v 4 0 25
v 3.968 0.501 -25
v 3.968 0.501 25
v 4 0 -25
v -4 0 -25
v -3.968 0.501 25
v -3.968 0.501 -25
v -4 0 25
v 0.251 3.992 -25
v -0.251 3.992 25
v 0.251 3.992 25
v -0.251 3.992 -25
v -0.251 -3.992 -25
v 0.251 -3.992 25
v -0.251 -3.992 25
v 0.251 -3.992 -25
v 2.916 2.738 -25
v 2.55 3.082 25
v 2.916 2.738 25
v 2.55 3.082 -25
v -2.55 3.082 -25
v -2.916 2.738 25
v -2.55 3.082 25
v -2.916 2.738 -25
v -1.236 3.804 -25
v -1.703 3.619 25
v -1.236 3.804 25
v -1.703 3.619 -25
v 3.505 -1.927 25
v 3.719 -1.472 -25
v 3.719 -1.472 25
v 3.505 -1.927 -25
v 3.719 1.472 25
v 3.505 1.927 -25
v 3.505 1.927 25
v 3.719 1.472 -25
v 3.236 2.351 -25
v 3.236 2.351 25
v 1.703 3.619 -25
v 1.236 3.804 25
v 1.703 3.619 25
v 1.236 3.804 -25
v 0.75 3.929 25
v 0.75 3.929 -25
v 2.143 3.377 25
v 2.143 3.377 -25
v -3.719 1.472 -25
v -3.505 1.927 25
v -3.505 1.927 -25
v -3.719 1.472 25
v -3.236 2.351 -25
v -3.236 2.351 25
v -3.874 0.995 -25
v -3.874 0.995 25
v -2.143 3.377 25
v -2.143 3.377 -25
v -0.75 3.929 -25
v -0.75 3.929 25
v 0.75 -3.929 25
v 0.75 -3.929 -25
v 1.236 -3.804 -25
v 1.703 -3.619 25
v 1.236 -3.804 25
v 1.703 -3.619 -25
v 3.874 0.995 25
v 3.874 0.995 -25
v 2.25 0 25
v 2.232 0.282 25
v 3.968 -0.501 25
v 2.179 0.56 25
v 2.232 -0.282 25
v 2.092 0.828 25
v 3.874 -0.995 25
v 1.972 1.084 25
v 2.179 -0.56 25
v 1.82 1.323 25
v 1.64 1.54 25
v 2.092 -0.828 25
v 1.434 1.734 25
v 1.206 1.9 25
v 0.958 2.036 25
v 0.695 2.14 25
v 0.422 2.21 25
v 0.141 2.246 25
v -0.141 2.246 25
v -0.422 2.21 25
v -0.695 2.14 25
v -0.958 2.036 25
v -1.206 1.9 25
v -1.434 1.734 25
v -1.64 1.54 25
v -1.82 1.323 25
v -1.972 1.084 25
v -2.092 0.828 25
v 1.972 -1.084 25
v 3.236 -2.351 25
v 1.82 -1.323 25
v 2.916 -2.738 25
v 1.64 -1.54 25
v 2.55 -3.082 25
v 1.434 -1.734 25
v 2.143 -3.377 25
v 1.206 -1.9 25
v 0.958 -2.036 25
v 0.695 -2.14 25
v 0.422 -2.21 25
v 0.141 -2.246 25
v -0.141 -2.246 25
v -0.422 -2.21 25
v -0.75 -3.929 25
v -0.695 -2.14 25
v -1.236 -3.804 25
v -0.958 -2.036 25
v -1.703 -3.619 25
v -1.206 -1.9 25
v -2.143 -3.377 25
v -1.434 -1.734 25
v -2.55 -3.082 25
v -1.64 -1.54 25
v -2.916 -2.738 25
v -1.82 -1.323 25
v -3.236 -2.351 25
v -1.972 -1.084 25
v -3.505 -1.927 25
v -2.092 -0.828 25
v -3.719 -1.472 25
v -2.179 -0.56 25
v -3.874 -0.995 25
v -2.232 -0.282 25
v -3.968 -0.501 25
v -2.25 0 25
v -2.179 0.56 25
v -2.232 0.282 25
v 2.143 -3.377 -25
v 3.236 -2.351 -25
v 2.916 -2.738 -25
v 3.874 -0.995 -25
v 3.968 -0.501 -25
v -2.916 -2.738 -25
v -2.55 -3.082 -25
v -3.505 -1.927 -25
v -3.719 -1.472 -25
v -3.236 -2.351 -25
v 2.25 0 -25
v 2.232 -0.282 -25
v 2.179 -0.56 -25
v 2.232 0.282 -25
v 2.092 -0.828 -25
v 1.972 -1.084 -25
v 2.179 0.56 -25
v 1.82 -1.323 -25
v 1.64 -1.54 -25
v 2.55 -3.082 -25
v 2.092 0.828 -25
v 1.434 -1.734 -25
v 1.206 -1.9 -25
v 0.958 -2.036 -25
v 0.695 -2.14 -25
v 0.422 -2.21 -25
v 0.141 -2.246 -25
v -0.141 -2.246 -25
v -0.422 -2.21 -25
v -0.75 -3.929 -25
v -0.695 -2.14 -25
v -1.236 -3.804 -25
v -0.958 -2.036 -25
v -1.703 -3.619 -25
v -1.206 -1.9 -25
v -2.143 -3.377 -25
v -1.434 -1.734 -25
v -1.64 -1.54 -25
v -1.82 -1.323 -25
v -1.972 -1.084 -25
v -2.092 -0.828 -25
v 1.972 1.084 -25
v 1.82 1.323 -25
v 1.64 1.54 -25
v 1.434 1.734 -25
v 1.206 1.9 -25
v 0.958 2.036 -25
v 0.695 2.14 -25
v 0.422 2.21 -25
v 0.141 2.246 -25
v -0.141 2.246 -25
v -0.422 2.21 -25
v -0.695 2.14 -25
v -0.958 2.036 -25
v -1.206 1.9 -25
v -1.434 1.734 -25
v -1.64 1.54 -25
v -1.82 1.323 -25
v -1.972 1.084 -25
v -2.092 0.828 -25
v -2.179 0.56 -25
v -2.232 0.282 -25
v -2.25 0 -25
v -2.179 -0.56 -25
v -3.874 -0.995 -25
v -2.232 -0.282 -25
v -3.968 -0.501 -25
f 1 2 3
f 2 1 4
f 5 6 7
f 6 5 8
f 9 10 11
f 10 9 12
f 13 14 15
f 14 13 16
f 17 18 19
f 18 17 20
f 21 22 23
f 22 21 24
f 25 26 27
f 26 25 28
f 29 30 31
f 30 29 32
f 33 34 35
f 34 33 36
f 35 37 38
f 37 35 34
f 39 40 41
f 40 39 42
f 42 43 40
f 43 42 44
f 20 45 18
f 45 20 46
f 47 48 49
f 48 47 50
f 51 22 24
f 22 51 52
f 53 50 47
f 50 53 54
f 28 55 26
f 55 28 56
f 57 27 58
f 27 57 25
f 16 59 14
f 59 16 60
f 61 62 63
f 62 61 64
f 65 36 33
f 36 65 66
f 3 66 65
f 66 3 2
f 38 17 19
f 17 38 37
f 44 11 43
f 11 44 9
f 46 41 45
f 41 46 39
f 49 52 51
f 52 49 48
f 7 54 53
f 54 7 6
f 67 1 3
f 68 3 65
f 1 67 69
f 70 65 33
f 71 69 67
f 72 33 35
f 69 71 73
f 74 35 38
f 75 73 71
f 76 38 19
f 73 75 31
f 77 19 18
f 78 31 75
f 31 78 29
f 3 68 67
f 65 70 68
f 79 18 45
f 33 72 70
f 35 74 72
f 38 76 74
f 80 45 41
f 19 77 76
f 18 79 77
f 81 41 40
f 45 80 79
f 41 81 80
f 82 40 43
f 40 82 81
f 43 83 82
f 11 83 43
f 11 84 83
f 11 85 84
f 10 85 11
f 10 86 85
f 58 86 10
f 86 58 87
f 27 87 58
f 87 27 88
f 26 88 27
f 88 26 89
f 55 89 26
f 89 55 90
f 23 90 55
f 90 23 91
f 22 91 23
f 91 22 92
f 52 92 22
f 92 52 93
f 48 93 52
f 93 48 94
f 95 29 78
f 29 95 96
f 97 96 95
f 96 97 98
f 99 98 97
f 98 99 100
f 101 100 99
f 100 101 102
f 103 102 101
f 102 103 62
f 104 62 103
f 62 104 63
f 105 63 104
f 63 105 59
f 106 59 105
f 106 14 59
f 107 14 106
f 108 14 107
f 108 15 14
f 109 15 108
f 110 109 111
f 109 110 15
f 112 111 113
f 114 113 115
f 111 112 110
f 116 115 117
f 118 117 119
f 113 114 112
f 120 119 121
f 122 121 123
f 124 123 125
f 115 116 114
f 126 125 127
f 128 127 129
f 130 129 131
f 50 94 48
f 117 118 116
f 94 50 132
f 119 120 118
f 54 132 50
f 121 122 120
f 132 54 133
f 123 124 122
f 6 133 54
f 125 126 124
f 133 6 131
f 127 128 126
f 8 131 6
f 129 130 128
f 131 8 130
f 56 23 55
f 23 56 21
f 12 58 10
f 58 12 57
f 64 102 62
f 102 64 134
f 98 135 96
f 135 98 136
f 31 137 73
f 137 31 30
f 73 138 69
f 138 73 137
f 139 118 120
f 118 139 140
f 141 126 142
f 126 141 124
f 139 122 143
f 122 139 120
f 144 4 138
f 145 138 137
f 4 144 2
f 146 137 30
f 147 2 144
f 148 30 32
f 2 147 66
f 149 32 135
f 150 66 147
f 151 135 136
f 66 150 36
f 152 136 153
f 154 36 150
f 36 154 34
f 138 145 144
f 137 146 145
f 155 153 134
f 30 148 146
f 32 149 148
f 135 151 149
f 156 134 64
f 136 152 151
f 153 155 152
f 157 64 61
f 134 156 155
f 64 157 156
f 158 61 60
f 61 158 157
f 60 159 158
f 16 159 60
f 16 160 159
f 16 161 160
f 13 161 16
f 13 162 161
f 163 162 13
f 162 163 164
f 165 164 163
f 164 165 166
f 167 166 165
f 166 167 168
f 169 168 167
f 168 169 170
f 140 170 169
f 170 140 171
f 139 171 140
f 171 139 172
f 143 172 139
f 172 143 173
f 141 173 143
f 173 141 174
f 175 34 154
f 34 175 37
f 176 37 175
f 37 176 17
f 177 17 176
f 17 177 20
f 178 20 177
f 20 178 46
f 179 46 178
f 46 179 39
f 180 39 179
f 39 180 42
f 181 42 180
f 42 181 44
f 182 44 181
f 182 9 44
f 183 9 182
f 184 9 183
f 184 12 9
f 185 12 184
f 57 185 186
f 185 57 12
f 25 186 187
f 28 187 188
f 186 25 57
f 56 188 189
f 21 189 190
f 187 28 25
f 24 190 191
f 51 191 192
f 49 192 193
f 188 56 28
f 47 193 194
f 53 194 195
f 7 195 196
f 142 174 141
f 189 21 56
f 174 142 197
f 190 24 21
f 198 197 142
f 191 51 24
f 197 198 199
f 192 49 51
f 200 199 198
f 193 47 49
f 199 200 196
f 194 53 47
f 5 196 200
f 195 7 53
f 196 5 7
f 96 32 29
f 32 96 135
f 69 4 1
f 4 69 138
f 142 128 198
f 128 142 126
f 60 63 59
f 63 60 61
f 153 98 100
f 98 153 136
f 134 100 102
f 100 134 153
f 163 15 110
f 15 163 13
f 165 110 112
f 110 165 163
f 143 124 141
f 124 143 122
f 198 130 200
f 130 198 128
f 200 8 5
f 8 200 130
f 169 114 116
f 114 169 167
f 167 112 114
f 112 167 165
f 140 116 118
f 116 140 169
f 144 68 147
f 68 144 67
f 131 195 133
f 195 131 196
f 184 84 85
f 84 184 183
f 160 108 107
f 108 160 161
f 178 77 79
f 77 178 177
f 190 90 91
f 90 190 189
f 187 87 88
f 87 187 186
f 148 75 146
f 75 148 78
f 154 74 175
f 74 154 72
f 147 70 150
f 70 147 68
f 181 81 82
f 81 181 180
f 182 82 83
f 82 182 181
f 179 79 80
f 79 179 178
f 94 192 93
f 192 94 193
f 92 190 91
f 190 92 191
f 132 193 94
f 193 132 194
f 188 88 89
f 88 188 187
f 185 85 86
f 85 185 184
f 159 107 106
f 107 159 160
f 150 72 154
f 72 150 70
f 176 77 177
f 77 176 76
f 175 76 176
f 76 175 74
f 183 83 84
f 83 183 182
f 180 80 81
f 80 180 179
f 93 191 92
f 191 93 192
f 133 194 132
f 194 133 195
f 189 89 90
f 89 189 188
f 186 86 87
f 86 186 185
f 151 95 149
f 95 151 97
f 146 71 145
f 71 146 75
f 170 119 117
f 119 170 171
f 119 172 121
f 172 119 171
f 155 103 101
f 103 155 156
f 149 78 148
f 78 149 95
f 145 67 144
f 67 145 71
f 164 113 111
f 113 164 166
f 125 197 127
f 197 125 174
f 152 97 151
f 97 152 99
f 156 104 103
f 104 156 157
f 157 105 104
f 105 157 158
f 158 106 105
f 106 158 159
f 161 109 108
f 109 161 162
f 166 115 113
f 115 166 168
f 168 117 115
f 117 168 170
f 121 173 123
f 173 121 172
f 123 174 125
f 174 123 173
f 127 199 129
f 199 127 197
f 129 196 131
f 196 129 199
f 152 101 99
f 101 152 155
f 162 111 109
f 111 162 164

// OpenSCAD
$fn = 50;


difference() {
	union() {
		translate(v = [0, 0, -25.0000000000]) {
			cylinder(h = 50, r = 4.0000000000);
		}
	}
	union() {
		translate(v = [0, 0, -100.0000000000]) {
			cylinder(h = 200, r = 2.2500000000);
		}
	}
}
